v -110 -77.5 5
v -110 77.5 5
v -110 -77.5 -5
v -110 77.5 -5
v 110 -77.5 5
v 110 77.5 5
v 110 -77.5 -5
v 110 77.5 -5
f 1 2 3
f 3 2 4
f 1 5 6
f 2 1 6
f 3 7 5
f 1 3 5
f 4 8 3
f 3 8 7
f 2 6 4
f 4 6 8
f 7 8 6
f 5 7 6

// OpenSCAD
translate ([ 0,0,0]) cube( [ 220, 155, 10 ], center=true );
